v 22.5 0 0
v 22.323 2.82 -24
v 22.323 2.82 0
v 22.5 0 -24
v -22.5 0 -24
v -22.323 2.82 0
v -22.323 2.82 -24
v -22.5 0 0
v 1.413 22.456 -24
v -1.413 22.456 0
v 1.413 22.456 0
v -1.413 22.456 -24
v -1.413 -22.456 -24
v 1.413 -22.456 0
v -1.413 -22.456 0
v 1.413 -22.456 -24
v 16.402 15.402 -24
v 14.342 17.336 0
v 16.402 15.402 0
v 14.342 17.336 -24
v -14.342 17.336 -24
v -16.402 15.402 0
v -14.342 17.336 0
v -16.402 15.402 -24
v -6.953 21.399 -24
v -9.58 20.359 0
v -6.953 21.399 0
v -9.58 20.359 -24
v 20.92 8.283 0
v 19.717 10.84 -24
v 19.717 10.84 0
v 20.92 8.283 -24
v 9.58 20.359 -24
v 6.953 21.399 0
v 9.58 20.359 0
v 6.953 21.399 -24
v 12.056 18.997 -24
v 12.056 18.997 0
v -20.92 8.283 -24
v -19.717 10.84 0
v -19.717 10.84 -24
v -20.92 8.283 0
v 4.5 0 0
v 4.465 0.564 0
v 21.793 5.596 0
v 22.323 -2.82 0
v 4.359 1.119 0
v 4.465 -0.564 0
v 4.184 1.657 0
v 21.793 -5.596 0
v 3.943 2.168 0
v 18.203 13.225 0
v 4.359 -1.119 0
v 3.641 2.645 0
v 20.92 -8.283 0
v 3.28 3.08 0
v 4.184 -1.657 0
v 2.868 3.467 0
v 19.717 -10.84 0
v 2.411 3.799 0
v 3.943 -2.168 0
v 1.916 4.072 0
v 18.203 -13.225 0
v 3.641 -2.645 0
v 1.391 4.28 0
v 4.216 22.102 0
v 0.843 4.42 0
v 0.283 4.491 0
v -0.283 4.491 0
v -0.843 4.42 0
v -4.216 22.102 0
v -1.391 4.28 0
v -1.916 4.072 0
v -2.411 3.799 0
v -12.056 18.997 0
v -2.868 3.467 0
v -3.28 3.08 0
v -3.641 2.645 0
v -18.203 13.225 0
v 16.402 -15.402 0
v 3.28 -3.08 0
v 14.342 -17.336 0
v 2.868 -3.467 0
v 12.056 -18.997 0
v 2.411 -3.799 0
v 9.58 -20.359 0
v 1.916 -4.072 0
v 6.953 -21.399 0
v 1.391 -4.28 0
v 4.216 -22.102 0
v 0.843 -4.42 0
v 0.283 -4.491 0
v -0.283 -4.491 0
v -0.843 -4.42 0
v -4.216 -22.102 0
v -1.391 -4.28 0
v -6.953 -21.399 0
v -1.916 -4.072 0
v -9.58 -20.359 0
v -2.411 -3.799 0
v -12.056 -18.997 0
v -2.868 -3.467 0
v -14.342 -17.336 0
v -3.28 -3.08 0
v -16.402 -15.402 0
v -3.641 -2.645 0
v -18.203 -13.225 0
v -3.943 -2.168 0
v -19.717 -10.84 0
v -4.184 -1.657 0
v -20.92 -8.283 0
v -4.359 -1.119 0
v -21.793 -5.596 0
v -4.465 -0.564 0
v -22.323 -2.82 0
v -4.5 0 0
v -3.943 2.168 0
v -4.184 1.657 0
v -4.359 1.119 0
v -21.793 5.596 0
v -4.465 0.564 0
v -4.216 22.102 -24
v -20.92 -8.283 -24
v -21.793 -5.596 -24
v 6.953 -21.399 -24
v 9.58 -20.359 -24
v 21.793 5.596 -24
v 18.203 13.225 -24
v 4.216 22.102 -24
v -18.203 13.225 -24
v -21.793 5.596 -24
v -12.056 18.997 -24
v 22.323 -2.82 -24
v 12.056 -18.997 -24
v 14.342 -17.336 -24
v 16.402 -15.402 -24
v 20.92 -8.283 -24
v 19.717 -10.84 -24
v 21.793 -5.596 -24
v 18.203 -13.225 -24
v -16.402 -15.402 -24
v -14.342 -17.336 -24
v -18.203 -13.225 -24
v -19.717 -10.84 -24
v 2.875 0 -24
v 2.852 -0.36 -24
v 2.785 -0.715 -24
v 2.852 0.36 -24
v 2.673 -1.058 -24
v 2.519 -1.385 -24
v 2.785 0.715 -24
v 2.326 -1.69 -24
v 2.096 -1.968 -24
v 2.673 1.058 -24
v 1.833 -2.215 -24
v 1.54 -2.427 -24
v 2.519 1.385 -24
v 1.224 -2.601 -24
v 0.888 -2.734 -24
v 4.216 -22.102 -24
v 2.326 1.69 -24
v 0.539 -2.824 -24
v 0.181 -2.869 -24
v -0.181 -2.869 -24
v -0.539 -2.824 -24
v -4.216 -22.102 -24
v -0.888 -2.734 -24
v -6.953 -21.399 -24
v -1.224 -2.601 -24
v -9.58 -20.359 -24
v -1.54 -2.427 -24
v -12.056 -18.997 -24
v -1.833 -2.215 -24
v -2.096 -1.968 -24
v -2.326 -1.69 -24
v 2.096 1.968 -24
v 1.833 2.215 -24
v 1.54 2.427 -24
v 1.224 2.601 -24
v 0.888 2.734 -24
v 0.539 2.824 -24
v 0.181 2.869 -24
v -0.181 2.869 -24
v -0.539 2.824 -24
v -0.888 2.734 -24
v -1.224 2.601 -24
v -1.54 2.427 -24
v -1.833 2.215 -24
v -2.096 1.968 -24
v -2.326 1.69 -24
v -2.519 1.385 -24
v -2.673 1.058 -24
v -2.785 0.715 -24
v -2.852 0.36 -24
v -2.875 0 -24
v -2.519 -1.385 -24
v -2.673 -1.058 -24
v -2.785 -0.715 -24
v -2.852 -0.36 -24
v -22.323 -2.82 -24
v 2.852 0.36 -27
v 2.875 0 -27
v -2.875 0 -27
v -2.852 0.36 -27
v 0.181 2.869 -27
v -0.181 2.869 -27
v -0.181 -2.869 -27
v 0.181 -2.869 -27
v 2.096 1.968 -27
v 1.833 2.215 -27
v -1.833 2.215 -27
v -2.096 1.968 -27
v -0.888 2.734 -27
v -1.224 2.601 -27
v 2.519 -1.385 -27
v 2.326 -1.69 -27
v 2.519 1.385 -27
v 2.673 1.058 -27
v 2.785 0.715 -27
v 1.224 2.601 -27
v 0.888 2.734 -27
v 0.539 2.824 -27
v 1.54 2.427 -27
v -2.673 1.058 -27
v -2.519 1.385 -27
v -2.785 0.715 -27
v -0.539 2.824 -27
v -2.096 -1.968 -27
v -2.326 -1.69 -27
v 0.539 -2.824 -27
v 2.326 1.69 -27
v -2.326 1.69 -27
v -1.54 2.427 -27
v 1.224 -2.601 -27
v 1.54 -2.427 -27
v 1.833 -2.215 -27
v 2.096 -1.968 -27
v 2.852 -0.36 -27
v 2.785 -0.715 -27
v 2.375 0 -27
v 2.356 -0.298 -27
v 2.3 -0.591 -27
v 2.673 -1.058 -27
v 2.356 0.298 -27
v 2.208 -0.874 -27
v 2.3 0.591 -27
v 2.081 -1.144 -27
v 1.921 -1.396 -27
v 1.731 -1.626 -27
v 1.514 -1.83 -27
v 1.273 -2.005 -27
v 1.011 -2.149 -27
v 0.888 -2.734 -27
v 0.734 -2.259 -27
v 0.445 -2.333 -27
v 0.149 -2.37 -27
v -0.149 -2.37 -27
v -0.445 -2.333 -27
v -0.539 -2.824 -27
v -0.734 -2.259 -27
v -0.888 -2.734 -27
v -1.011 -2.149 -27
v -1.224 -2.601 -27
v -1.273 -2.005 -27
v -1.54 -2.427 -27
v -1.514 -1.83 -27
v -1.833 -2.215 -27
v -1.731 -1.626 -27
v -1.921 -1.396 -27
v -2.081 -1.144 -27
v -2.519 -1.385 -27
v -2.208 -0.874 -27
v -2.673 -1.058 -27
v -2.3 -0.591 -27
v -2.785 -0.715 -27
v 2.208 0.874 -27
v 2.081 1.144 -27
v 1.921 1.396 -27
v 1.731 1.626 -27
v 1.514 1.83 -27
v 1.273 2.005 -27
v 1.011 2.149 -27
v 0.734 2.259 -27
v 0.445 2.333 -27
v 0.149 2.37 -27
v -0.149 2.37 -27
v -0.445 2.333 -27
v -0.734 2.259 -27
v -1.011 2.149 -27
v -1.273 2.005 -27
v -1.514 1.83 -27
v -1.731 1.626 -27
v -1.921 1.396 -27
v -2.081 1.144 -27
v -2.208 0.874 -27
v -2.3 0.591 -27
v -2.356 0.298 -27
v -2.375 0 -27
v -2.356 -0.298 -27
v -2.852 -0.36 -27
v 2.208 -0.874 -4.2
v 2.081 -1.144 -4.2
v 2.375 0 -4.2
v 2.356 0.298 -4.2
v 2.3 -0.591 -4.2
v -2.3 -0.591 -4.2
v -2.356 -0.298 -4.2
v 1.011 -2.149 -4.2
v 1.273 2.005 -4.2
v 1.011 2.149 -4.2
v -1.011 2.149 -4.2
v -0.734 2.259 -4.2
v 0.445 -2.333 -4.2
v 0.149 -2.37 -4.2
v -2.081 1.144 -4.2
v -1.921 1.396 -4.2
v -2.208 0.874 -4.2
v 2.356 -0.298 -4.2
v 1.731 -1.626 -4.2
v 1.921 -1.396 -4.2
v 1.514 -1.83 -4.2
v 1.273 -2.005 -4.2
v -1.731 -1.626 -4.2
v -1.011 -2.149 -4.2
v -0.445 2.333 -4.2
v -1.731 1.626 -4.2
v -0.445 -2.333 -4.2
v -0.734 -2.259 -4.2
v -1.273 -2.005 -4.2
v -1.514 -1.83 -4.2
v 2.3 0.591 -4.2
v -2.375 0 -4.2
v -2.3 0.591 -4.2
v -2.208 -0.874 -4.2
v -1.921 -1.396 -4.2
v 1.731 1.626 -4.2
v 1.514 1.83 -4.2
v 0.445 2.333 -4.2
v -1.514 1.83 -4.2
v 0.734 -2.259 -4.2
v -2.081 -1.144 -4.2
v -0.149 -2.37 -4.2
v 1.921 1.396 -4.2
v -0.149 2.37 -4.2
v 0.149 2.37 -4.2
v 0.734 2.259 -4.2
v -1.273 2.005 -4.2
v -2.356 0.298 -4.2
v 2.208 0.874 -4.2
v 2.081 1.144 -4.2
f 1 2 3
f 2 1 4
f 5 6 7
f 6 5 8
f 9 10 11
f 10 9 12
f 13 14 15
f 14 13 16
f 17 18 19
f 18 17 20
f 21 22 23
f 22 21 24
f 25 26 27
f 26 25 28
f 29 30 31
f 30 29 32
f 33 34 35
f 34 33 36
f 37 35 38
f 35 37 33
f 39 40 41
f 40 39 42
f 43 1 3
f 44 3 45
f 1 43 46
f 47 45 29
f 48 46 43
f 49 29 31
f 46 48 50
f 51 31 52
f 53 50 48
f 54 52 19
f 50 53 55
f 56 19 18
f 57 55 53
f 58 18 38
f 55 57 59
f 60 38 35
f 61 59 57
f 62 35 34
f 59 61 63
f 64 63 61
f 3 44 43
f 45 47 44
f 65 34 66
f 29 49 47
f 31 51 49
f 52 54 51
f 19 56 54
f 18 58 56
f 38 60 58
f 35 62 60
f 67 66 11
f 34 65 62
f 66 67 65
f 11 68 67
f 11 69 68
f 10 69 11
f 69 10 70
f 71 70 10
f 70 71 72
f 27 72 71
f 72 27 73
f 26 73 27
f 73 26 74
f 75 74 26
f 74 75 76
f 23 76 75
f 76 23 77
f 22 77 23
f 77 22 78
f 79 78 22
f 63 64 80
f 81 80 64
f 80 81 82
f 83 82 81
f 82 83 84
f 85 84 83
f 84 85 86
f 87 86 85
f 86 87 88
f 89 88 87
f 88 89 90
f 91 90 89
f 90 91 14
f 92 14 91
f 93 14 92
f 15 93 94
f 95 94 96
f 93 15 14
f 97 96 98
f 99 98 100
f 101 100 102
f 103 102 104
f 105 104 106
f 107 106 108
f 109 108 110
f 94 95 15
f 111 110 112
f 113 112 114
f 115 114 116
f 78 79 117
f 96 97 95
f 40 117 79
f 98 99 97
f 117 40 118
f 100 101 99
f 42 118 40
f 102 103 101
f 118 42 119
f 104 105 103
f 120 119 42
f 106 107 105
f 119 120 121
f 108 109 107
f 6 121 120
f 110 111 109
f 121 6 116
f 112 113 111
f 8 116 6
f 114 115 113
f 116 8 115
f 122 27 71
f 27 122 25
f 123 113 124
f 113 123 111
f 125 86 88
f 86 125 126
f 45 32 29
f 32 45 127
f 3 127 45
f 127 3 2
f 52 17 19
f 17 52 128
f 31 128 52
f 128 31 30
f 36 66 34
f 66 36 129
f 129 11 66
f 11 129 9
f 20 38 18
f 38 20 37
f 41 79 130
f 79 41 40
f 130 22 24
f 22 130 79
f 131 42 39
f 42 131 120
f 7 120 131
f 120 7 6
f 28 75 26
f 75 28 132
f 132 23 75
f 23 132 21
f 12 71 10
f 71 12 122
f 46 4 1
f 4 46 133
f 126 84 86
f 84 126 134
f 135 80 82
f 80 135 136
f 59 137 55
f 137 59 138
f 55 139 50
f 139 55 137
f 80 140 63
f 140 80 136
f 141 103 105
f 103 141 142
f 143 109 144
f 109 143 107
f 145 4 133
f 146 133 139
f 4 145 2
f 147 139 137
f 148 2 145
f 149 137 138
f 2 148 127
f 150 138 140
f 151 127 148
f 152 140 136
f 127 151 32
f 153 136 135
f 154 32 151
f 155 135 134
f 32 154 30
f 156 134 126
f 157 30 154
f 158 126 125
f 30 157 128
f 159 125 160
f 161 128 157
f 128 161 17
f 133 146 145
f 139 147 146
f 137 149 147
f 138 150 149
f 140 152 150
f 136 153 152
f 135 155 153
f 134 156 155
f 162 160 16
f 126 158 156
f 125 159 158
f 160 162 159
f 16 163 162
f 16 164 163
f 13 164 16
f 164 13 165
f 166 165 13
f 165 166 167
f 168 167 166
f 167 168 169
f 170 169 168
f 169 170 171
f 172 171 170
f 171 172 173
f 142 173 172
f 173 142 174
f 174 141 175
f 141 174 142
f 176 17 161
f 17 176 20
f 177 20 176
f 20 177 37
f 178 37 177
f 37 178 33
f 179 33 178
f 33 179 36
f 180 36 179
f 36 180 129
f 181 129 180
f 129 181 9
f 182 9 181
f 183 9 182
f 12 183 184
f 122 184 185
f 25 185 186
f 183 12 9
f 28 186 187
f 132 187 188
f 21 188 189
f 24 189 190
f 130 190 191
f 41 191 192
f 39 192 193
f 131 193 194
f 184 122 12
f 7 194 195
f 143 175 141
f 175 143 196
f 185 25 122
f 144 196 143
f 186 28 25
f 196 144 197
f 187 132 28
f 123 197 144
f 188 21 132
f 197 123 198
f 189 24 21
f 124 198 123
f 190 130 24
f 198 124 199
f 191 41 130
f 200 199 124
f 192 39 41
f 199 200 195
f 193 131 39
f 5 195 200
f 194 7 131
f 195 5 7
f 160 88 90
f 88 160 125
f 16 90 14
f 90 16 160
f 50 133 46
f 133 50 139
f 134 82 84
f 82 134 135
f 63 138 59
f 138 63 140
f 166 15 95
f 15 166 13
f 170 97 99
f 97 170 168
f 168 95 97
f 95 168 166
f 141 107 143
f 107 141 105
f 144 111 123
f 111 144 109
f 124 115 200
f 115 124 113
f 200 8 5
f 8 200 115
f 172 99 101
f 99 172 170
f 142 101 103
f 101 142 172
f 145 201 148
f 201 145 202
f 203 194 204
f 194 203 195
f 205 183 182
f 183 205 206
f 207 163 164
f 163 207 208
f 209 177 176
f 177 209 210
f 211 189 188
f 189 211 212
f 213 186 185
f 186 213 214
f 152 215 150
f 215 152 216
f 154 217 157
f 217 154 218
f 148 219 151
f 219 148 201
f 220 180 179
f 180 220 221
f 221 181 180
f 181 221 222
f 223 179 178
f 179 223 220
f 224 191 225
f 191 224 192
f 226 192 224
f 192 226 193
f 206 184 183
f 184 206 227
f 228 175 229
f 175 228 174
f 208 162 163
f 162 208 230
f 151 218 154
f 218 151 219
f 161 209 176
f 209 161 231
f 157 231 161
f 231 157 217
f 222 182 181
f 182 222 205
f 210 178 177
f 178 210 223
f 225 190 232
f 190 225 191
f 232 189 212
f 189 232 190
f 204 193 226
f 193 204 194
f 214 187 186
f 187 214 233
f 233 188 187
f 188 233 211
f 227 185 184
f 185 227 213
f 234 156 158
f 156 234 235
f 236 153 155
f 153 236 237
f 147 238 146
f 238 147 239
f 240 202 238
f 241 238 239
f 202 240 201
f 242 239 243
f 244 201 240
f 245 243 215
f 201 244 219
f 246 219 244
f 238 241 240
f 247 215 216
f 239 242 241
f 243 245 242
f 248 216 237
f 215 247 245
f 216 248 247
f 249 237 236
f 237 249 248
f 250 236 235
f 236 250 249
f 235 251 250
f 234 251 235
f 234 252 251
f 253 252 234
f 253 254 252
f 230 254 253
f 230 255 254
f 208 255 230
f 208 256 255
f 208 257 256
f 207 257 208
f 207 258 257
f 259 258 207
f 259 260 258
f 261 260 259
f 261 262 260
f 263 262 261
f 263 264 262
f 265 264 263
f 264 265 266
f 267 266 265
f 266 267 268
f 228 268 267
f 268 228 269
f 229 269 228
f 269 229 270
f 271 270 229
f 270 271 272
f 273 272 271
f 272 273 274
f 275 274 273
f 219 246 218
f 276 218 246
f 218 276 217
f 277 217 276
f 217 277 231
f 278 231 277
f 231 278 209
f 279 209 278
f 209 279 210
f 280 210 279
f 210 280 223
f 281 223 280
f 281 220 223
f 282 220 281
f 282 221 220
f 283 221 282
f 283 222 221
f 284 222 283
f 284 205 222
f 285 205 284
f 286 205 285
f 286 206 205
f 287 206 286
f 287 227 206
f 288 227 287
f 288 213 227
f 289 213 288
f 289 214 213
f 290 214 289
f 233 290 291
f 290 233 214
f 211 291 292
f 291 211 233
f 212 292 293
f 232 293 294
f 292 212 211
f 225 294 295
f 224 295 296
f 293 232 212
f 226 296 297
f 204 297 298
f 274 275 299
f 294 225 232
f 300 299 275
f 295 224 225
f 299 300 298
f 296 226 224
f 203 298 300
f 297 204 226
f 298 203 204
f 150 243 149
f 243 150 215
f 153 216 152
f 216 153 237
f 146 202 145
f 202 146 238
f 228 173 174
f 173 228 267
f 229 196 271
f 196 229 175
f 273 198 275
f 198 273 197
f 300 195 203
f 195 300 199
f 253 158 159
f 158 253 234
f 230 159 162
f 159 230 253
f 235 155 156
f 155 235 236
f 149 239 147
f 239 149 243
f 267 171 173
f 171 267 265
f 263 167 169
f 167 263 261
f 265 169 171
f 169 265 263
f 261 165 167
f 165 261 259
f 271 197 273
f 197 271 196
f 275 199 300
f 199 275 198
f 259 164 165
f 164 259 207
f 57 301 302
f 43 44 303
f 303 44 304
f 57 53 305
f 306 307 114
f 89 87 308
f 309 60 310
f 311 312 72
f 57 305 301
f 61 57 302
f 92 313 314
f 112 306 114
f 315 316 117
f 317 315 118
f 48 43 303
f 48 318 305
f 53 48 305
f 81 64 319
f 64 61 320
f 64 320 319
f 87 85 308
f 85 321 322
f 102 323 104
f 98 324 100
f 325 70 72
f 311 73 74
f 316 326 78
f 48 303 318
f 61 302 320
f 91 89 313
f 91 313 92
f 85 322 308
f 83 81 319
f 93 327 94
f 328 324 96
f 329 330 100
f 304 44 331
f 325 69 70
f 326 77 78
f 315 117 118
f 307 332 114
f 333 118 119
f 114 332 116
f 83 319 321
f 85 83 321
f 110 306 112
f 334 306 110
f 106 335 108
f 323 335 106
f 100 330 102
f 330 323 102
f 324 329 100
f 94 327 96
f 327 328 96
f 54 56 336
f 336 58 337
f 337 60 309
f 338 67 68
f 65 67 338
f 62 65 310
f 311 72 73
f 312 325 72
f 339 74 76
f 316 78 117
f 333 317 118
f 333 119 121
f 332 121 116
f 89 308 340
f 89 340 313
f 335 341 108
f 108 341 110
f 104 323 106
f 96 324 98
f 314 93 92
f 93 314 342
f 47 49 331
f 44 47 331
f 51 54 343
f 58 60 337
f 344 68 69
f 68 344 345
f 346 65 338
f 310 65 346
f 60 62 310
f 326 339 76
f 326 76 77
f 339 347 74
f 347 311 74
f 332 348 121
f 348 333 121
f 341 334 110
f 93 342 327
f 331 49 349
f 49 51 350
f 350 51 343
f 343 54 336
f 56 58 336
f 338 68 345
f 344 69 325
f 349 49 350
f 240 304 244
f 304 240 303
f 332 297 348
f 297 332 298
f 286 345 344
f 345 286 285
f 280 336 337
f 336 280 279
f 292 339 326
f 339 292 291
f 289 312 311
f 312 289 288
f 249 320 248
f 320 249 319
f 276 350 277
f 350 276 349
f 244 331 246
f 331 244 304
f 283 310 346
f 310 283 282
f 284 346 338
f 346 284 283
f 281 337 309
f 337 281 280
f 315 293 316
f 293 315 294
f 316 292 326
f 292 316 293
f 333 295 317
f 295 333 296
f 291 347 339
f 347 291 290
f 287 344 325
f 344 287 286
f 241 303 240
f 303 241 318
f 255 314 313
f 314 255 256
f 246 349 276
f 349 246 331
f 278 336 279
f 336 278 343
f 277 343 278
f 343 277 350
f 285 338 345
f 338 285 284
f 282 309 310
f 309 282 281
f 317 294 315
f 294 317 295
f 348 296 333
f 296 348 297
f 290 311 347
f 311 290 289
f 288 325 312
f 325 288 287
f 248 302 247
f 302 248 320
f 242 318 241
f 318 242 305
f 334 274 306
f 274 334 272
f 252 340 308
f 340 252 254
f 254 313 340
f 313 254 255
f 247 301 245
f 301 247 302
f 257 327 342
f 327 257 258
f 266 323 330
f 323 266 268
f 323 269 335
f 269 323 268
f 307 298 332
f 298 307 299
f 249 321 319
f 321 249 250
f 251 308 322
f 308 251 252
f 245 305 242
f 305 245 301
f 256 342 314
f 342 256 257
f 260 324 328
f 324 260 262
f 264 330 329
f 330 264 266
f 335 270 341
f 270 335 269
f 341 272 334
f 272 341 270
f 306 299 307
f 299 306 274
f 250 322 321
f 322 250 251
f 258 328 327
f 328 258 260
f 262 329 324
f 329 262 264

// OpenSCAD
$fn = 50;

difference() {
	union() {
		translate(v = [0, 0, -24.0]) {
			cylinder(h = 24, r = 22.5);
		}
		#translate(v = [0, 0, -27.0]) {
			cylinder(h = 27, r = 2.875);
		}
	}
	union() {
		translate(v = [0, 0, 0]) {
			rotate(a = [0, 0, 0]) {
				difference() {
					union() {
						translate(v = [0, 0, -27.0]) {
							cylinder(h = 27, r = 2.25);
						}
						translate(v = [0, 0, -4.2]) {
							cylinder(h = 4.2, r1 = 2.375, r2 = 4.5);
						}
						translate(v = [0, 0, -27.0]) {
							cylinder(h = 27, r = 2.375);
						}
						translate(v = [0, 0, -27.0]) {
							cylinder(h = 27, r = 2.25);
						}
					}
					union();
				}
			}
		}
	}
}
